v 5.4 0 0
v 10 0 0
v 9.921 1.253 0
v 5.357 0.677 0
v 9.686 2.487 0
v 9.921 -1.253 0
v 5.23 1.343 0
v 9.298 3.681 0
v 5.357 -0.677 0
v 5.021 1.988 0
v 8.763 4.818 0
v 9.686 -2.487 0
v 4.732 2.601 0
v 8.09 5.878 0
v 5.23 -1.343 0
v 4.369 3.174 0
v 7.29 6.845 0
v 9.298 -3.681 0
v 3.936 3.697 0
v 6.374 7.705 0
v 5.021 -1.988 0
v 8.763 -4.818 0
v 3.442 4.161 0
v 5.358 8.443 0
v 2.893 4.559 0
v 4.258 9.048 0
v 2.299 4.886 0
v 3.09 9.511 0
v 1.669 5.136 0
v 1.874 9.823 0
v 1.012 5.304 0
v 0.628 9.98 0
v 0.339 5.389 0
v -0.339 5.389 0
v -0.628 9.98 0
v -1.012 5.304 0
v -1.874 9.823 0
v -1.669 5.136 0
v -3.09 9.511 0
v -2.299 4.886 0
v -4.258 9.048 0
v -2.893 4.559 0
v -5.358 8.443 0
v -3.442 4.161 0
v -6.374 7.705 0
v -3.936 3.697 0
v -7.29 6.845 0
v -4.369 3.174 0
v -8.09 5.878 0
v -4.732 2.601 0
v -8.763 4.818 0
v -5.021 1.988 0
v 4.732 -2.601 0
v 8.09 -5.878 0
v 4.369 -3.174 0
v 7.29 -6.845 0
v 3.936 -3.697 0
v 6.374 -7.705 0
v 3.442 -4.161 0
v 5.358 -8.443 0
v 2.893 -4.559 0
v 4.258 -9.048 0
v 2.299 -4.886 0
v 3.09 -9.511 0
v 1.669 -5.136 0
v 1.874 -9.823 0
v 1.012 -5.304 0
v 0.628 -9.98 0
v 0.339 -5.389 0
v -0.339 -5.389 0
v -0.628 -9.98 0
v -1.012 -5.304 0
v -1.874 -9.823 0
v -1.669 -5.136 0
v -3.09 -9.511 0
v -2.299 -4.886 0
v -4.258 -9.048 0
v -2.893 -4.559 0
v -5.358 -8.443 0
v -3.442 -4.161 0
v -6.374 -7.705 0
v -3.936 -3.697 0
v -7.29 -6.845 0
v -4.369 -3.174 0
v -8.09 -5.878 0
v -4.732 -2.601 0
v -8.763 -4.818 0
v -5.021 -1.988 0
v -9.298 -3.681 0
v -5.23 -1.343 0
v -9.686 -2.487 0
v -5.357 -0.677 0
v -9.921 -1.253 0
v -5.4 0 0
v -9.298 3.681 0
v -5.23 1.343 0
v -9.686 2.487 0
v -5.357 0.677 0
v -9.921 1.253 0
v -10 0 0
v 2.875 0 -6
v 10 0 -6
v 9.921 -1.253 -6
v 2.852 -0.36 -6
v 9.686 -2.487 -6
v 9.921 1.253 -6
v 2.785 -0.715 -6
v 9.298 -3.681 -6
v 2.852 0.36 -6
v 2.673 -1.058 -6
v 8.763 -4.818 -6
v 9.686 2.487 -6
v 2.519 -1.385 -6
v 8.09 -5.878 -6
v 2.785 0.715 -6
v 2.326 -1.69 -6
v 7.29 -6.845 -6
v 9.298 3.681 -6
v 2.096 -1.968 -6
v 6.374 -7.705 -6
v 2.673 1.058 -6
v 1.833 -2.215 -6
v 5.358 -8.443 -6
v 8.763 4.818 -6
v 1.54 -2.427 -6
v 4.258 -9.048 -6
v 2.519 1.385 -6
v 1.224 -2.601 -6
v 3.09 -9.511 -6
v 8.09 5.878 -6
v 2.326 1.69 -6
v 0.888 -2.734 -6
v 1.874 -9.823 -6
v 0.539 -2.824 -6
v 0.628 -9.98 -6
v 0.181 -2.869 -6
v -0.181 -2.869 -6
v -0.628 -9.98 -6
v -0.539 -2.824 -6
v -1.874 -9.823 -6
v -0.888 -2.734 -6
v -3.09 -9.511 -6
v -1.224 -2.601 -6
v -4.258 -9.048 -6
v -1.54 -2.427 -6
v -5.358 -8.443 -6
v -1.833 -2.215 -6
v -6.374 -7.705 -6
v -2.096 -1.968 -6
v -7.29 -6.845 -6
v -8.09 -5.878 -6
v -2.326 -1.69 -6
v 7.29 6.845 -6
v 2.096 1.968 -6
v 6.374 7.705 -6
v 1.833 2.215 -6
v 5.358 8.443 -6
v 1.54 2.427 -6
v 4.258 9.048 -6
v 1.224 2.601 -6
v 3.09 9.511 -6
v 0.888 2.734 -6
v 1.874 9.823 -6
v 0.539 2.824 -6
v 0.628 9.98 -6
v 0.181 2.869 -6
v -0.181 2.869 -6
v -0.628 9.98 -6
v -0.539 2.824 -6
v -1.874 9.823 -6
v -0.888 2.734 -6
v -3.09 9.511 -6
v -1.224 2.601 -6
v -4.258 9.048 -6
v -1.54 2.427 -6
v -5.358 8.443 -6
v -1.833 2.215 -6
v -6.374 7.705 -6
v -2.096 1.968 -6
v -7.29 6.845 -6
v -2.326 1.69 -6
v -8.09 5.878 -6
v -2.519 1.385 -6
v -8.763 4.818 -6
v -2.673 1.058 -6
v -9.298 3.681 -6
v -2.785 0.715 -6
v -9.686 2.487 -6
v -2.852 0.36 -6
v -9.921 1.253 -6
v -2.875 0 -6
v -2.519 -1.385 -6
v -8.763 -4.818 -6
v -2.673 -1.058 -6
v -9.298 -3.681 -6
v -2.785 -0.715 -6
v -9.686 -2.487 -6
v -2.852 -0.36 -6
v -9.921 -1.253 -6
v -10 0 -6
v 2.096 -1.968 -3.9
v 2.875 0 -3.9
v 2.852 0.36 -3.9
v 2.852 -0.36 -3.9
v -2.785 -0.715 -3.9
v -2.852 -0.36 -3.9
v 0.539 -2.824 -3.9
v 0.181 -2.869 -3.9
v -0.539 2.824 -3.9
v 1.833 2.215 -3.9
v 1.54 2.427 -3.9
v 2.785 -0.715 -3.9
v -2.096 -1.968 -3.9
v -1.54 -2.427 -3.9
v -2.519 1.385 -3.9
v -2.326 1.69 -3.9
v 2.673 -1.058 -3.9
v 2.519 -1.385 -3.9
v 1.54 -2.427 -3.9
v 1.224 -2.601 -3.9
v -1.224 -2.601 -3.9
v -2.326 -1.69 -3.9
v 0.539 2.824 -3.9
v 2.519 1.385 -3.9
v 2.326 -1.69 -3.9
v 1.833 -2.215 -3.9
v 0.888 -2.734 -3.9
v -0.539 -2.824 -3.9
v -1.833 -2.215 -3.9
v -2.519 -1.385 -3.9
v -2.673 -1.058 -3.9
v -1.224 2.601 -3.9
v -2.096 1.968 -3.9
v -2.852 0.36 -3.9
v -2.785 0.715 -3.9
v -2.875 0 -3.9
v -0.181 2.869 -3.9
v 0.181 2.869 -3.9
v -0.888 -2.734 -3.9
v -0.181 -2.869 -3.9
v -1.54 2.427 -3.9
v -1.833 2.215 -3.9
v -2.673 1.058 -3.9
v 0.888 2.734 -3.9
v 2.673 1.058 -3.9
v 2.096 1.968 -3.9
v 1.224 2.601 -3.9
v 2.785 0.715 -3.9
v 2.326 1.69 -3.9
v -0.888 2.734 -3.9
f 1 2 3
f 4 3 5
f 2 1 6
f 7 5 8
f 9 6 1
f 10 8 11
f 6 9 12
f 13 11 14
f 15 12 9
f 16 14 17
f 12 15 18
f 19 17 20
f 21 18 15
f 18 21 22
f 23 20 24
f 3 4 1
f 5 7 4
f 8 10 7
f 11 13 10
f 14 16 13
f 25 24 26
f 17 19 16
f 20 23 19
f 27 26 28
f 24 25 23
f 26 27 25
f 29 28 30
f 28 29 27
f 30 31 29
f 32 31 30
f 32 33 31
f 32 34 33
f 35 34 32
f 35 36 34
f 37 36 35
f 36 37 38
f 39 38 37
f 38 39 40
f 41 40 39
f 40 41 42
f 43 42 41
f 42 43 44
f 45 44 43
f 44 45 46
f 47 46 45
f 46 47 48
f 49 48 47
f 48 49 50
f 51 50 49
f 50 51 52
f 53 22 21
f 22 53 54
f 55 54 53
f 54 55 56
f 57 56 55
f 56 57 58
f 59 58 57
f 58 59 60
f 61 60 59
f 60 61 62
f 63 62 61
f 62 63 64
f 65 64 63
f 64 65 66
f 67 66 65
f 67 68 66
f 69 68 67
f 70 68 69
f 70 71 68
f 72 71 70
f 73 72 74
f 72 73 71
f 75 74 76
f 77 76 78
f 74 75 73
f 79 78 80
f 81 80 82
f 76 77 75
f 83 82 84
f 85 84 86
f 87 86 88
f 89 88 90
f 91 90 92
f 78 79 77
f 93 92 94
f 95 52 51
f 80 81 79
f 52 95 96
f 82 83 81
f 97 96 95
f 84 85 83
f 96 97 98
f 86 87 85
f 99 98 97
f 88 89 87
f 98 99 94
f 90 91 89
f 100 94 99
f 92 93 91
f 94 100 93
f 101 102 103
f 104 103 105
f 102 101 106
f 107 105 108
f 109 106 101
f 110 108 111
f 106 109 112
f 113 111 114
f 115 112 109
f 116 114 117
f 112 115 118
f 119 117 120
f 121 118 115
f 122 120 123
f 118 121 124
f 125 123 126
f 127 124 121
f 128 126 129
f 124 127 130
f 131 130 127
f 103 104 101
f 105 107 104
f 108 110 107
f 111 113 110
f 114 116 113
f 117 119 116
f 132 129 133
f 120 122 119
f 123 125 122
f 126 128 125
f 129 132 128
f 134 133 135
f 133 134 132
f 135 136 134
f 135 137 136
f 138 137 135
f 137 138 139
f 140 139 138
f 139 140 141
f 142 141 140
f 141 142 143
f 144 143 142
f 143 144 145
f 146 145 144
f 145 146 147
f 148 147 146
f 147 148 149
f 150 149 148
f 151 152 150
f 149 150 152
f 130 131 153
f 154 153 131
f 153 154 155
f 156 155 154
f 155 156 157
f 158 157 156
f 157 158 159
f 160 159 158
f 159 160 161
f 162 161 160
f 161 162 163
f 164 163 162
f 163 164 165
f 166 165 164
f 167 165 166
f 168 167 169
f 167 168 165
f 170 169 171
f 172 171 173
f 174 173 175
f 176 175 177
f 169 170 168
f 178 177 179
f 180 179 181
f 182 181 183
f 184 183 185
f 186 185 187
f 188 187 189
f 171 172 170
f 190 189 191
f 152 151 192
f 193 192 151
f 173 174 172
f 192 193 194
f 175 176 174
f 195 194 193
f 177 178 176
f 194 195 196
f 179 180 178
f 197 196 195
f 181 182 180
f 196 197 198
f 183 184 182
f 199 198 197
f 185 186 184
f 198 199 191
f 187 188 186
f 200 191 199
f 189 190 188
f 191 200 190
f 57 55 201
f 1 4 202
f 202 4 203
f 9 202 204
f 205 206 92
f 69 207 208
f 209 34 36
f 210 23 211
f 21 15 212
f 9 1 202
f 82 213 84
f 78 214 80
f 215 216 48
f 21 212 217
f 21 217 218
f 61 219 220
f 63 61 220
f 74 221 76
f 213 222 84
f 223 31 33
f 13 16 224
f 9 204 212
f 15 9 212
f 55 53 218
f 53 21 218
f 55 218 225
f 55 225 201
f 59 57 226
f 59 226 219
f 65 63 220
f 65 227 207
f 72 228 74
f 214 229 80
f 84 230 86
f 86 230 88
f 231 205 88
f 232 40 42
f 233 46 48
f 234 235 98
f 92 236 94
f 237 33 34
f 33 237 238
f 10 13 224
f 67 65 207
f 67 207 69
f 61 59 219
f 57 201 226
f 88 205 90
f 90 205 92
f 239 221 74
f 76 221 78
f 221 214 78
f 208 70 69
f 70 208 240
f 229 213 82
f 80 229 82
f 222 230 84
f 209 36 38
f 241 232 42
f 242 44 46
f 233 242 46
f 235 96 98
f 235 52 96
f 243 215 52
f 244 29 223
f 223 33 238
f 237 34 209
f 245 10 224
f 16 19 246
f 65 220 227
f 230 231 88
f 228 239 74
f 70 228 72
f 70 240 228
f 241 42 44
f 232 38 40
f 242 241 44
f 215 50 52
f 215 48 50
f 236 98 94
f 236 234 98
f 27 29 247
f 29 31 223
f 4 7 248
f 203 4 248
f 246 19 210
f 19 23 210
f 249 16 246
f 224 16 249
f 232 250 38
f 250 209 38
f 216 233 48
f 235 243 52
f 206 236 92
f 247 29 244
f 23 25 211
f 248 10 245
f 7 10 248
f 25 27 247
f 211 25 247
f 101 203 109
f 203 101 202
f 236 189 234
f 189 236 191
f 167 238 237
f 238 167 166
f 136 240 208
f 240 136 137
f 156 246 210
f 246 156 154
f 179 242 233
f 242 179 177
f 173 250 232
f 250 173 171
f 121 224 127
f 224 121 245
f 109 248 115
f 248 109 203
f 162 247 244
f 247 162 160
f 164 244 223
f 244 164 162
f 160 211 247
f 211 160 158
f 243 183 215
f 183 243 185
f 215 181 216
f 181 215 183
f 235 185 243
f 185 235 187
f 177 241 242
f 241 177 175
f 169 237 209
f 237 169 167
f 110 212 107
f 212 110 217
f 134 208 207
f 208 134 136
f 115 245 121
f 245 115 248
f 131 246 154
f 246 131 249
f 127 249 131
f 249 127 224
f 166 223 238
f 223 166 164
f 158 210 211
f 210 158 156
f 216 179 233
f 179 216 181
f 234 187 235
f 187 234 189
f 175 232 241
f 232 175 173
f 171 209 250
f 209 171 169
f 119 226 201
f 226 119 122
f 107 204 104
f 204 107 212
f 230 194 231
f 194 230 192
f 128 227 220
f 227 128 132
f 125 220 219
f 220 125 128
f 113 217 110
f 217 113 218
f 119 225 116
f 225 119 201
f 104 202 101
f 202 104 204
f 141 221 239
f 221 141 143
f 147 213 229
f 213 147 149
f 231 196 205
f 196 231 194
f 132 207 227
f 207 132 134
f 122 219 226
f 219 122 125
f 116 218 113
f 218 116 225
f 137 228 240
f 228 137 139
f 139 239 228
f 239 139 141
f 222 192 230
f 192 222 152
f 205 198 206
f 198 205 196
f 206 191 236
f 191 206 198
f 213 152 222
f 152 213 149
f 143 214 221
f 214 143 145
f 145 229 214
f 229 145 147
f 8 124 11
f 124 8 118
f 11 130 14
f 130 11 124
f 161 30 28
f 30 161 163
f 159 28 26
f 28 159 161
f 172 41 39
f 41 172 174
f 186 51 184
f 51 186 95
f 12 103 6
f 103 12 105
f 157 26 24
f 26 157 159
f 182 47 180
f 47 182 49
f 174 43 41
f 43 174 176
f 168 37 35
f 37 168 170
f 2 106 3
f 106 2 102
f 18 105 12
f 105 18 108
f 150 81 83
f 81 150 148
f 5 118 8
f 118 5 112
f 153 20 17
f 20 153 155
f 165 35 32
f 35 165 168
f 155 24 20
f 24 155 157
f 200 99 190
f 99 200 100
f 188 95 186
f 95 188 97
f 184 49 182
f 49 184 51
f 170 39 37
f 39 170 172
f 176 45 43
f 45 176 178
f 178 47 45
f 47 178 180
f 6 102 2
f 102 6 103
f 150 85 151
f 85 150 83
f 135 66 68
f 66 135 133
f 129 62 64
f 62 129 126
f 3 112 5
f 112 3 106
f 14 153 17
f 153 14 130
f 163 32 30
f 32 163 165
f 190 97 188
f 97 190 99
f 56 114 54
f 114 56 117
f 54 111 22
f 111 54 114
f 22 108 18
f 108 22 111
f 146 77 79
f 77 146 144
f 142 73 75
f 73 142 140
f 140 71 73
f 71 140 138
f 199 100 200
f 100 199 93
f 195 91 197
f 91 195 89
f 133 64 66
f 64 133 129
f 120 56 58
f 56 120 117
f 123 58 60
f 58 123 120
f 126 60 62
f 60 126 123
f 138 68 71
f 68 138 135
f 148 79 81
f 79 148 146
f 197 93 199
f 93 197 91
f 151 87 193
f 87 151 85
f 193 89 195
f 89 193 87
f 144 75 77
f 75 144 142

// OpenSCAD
$fn = 50;


difference() {
	union() {
		translate(v = [0, 0, -6.0000000000]) {
			cylinder(h = 6, r = 10.0000000000);
		}
		cylinder(h = 0, r = 20.0000000000);
	}
	union() {
		translate(v = [0, 0, 0]) {
			rotate(a = [0, 0, 0]) {
				difference() {
					union() {
						#translate(v = [0, 0, -6.0000000000]) {
							cylinder(h = 6, r = 2.6000000000);
						}
						#translate(v = [0, 0, -3.9000000000]) {
							cylinder(h = 3.9000000000, r1 = 2.8750000000, r2 = 5.4000000000);
						}
						#translate(v = [0, 0, -6.0000000000]) {
							cylinder(h = 6, r = 2.8750000000);
						}
						#translate(v = [0, 0, -6.0000000000]) {
							cylinder(h = 6, r = 2.6000000000);
						}
					}
					union();
				}
			}
		}
	}
}
